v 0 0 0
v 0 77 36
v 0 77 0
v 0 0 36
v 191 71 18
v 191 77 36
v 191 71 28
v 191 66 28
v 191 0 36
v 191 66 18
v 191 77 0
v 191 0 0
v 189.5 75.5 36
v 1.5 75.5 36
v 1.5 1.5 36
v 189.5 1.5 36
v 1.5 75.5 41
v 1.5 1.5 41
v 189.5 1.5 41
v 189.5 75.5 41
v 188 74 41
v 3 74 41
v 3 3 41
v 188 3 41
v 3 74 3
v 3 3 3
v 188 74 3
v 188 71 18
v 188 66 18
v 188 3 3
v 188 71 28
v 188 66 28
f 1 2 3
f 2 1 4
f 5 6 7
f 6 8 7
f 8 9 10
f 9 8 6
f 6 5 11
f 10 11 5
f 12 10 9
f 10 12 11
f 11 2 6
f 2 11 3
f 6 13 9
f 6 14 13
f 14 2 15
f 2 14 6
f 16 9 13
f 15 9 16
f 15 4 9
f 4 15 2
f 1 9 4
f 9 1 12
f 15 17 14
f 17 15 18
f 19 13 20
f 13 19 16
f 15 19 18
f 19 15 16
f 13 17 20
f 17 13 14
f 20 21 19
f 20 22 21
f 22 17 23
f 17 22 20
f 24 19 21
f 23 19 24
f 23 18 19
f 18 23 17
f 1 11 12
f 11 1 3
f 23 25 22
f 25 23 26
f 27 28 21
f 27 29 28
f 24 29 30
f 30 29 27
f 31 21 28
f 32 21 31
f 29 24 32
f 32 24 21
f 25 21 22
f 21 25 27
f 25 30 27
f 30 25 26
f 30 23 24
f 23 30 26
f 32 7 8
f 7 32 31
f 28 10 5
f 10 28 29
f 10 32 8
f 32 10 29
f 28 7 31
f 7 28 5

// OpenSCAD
L=185;
W=71;
H=38;

difference() {
  cube([L+6,W+6,H+3]);

  translate([3,3,3])
  cube([L,W,H+8]);
  
  translate([0,0,H-2])
  difference() {
      cube([L+6,W+6,H+6]);
      translate([1.5,1.5,0])
      cube([L+3,W+3,H+3]);
  }
  
  translate([L/2,W-5,(H+3)/2-5/2])
  cube([L+10,5,10]);
}
